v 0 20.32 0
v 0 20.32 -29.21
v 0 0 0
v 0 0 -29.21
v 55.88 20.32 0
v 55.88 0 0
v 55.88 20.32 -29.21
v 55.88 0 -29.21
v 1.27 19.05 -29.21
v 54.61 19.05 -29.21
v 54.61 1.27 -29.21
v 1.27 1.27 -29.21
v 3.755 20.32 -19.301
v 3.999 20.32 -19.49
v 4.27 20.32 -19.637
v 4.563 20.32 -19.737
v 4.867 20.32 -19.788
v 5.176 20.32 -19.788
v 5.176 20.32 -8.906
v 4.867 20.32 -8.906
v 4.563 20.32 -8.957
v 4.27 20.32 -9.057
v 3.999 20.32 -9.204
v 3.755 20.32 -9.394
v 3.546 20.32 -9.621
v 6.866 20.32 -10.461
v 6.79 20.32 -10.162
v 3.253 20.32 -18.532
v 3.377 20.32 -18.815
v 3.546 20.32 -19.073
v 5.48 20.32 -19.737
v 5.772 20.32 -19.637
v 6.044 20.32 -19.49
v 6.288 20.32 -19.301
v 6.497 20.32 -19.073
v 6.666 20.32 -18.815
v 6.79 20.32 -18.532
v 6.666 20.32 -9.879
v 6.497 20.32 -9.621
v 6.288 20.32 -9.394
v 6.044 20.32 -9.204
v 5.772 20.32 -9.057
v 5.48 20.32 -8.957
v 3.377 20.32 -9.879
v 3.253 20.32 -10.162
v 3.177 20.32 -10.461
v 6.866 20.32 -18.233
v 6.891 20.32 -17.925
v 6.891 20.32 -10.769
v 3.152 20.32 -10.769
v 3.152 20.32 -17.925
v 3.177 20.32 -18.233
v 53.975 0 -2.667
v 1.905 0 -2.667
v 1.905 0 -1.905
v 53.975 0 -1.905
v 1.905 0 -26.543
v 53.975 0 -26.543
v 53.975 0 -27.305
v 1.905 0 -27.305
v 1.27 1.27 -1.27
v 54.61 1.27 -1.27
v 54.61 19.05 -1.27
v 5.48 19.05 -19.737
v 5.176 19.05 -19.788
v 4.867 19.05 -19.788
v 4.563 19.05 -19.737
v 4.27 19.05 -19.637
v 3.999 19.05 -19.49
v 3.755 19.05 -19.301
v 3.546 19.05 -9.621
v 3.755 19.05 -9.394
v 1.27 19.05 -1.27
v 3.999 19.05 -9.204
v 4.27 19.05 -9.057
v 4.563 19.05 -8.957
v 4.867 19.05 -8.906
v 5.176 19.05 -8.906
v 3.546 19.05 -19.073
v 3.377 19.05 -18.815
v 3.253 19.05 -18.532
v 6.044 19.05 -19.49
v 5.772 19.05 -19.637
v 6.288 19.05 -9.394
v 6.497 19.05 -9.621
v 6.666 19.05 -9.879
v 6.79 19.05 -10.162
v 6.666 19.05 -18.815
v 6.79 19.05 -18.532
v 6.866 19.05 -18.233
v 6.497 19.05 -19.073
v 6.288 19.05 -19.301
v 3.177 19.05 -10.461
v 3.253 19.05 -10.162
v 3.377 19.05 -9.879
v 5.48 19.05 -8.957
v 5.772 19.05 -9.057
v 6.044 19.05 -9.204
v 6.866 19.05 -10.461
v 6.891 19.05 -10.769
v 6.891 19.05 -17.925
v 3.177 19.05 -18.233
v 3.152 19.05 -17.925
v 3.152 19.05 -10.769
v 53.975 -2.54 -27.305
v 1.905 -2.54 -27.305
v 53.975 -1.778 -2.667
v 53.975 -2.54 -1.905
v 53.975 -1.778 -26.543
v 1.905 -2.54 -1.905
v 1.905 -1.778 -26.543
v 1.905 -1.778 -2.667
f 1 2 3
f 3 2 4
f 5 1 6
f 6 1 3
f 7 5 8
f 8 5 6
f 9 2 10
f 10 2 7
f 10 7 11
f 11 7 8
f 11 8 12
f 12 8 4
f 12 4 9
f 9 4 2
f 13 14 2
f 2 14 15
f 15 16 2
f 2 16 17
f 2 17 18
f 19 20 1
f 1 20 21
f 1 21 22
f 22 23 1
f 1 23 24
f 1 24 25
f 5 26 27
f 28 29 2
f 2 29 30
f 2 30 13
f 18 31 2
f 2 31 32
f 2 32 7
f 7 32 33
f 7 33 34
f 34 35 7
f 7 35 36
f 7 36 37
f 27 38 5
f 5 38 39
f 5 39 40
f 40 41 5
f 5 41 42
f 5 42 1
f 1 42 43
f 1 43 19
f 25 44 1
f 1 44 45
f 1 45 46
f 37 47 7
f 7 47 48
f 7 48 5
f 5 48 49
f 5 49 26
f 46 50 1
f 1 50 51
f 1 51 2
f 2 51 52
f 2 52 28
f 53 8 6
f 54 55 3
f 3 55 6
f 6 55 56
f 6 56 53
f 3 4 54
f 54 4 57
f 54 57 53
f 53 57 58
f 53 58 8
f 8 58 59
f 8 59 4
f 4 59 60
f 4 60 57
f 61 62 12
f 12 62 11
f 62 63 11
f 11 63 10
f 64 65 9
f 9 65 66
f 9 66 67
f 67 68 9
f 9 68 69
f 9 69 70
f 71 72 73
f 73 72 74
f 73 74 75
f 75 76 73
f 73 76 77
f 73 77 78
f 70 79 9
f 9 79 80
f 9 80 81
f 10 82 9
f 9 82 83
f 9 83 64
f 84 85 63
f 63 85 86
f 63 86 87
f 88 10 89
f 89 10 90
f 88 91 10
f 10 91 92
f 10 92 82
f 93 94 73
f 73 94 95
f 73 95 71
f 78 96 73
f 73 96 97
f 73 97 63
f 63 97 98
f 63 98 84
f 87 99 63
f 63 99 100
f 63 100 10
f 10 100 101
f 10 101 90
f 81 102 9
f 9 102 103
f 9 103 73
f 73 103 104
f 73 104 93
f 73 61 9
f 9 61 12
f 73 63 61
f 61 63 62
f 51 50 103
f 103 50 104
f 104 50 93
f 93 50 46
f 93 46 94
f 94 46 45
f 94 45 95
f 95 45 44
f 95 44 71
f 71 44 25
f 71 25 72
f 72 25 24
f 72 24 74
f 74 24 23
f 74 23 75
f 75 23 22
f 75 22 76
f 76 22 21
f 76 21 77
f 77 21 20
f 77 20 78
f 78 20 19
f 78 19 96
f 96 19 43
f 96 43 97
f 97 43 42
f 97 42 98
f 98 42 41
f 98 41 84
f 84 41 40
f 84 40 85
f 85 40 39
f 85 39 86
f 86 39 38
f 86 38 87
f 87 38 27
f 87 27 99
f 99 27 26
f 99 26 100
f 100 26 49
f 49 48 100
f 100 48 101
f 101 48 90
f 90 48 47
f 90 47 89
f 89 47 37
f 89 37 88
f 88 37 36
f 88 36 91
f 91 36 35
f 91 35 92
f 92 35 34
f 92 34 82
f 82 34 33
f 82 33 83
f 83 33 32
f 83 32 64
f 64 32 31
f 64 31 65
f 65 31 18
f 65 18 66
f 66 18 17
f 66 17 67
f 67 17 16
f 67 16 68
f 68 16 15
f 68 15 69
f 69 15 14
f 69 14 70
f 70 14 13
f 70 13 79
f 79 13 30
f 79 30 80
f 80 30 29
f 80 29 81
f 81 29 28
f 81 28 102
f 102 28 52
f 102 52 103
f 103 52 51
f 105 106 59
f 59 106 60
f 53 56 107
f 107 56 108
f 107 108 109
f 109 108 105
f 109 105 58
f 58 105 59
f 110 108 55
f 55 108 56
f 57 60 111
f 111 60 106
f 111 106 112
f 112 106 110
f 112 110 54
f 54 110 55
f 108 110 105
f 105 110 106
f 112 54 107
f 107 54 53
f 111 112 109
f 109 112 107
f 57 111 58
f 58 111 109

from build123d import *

# Parameters (mm, degrees)
SKETCH3_W           = 55.88
SKETCH3_H           = 29.21
BOSS_EXTRUDE4_DEPTH = 20.32
SKETCH5_W           = 53.34
SKETCH5_H           = 17.78
CUT_EXTRUDE1_DEPTH  = 27.94
CUT_EXTRUDE2_REACH  = 22.32
SKETCH7_W           = 52.07
SKETCH7_H           = 25.4
BOSS_EXTRUDE5_DEPTH = 2.54
CUT_EXTRUDE3_REACH  = 55.975
SKETCH8_W           = 23.876
SKETCH8_H           = 1.778


with BuildPart() as part:
    # Sketch3 → Boss-Extrude4 (new body)
    with BuildSketch(Plane(origin=(0, 0, 0), x_dir=(1, 0, 0), z_dir=(0, 1, 0))):
        with Locations((27.94, 14.605)):
            Rectangle(SKETCH3_W, SKETCH3_H)
    extrude(amount=BOSS_EXTRUDE4_DEPTH)

    # Sketch5 → Cut-Extrude1 (cut)
    with BuildSketch(Plane(origin=(0, 0, -29.21), x_dir=(-1, 0, 0), z_dir=(0, 0, -1))):
        with Locations((-27.94, 10.16)):
            Rectangle(SKETCH5_W, SKETCH5_H)
    extrude(amount=-CUT_EXTRUDE1_DEPTH, mode=Mode.SUBTRACT)

    # Sketch6 → Cut-Extrude2 (cut, up to next)
    with BuildSketch(Plane(origin=(0, 20.32, 0), x_dir=(1, 0, 0), z_dir=(0, 1, 0)), mode=Mode.PRIVATE) as cut_extrude2_sk1:
        with BuildLine():
            Line((6.891061211, 17.925123576), (6.891061211, 10.769129072))
            ThreePointArc((6.891061211, 10.769129072), (5.021477061, 8.899544922), (3.151892912, 10.769129072))
            Line((3.151892912, 10.769129072), (3.151892912, 17.925123576))
            ThreePointArc((3.151892912, 17.925123576), (5.021477061, 19.794707726), (6.891061211, 17.925123576))
        make_face()
    cut_extrude2_tool1 = extrude(cut_extrude2_sk1.sketch, amount=-CUT_EXTRUDE2_REACH, mode=Mode.PRIVATE) & part.part
    add(cut_extrude2_tool1.solids().sort_by_distance((5.021477, 20.32, -14.347126))[0], mode=Mode.SUBTRACT)

    # Sketch7 → Boss-Extrude5 (add)
    with BuildSketch(Plane.XZ):
        with Locations((27.94, -14.605)):
            Rectangle(SKETCH7_W, SKETCH7_H)
    extrude(amount=BOSS_EXTRUDE5_DEPTH)

    # Sketch8 → Cut-Extrude3 (cut, up to next)
    with BuildSketch(Plane.ZY.offset(-1.905), mode=Mode.PRIVATE) as cut_extrude3_sk1:
        with Locations((-14.605, -0.889)):
            Rectangle(SKETCH8_W, SKETCH8_H)
    cut_extrude3_tool1 = extrude(cut_extrude3_sk1.sketch, amount=-CUT_EXTRUDE3_REACH, mode=Mode.PRIVATE) & part.part
    add(cut_extrude3_tool1.solids().sort_by_distance((1.905, -0.889, -14.605))[0], mode=Mode.SUBTRACT)


solid = part.part
